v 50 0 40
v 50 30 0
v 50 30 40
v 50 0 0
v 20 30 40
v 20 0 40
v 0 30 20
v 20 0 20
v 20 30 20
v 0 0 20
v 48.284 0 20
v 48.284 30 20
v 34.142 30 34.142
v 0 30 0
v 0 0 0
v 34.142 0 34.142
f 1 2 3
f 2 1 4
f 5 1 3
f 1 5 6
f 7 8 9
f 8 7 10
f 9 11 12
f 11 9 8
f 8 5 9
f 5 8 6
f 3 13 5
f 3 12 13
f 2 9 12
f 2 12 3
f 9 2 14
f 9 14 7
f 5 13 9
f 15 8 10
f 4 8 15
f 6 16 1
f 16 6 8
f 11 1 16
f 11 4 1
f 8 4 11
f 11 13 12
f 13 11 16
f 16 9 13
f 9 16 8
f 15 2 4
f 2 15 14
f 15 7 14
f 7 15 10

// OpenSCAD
// Base block dimensions
base_length = 50;  // Length of the base block
base_width = 30;   // Width of the base block
base_height = 20;  // Height of the base block

// Slanted block dimensions
slanted_length = 30;  // Length of the slanted block
slanted_width = 30;   // Width of the slanted block
slanted_height = 20;  // Height of the slanted block
slant_angle = 45;     // Angle of the slanted face

// Base block
module base_block() {
    // Solid rectangular block without any cutouts
    cube([base_length, base_width, base_height]);
}

// Slanted block
module slanted_block() {
    // Fully exposed slanted block
    difference() {
        cube([slanted_length, slanted_width, slanted_height]);
        translate([0, 0, 0]) {
            rotate([0, slant_angle, 0]) {
                translate([0, -slanted_width, 0]) {
                    cube([slanted_length, slanted_width * 2, slanted_height]);
                }
            }
        }
    }
}

// Assemble the model
module flexible_coupling() {
    // Base block
    base_block();

    // Slanted block positioned directly on top of the base block
    translate([base_length - slanted_length, 0, base_height]) {
        slanted_block();
    }
}

// Render the model
flexible_coupling();
